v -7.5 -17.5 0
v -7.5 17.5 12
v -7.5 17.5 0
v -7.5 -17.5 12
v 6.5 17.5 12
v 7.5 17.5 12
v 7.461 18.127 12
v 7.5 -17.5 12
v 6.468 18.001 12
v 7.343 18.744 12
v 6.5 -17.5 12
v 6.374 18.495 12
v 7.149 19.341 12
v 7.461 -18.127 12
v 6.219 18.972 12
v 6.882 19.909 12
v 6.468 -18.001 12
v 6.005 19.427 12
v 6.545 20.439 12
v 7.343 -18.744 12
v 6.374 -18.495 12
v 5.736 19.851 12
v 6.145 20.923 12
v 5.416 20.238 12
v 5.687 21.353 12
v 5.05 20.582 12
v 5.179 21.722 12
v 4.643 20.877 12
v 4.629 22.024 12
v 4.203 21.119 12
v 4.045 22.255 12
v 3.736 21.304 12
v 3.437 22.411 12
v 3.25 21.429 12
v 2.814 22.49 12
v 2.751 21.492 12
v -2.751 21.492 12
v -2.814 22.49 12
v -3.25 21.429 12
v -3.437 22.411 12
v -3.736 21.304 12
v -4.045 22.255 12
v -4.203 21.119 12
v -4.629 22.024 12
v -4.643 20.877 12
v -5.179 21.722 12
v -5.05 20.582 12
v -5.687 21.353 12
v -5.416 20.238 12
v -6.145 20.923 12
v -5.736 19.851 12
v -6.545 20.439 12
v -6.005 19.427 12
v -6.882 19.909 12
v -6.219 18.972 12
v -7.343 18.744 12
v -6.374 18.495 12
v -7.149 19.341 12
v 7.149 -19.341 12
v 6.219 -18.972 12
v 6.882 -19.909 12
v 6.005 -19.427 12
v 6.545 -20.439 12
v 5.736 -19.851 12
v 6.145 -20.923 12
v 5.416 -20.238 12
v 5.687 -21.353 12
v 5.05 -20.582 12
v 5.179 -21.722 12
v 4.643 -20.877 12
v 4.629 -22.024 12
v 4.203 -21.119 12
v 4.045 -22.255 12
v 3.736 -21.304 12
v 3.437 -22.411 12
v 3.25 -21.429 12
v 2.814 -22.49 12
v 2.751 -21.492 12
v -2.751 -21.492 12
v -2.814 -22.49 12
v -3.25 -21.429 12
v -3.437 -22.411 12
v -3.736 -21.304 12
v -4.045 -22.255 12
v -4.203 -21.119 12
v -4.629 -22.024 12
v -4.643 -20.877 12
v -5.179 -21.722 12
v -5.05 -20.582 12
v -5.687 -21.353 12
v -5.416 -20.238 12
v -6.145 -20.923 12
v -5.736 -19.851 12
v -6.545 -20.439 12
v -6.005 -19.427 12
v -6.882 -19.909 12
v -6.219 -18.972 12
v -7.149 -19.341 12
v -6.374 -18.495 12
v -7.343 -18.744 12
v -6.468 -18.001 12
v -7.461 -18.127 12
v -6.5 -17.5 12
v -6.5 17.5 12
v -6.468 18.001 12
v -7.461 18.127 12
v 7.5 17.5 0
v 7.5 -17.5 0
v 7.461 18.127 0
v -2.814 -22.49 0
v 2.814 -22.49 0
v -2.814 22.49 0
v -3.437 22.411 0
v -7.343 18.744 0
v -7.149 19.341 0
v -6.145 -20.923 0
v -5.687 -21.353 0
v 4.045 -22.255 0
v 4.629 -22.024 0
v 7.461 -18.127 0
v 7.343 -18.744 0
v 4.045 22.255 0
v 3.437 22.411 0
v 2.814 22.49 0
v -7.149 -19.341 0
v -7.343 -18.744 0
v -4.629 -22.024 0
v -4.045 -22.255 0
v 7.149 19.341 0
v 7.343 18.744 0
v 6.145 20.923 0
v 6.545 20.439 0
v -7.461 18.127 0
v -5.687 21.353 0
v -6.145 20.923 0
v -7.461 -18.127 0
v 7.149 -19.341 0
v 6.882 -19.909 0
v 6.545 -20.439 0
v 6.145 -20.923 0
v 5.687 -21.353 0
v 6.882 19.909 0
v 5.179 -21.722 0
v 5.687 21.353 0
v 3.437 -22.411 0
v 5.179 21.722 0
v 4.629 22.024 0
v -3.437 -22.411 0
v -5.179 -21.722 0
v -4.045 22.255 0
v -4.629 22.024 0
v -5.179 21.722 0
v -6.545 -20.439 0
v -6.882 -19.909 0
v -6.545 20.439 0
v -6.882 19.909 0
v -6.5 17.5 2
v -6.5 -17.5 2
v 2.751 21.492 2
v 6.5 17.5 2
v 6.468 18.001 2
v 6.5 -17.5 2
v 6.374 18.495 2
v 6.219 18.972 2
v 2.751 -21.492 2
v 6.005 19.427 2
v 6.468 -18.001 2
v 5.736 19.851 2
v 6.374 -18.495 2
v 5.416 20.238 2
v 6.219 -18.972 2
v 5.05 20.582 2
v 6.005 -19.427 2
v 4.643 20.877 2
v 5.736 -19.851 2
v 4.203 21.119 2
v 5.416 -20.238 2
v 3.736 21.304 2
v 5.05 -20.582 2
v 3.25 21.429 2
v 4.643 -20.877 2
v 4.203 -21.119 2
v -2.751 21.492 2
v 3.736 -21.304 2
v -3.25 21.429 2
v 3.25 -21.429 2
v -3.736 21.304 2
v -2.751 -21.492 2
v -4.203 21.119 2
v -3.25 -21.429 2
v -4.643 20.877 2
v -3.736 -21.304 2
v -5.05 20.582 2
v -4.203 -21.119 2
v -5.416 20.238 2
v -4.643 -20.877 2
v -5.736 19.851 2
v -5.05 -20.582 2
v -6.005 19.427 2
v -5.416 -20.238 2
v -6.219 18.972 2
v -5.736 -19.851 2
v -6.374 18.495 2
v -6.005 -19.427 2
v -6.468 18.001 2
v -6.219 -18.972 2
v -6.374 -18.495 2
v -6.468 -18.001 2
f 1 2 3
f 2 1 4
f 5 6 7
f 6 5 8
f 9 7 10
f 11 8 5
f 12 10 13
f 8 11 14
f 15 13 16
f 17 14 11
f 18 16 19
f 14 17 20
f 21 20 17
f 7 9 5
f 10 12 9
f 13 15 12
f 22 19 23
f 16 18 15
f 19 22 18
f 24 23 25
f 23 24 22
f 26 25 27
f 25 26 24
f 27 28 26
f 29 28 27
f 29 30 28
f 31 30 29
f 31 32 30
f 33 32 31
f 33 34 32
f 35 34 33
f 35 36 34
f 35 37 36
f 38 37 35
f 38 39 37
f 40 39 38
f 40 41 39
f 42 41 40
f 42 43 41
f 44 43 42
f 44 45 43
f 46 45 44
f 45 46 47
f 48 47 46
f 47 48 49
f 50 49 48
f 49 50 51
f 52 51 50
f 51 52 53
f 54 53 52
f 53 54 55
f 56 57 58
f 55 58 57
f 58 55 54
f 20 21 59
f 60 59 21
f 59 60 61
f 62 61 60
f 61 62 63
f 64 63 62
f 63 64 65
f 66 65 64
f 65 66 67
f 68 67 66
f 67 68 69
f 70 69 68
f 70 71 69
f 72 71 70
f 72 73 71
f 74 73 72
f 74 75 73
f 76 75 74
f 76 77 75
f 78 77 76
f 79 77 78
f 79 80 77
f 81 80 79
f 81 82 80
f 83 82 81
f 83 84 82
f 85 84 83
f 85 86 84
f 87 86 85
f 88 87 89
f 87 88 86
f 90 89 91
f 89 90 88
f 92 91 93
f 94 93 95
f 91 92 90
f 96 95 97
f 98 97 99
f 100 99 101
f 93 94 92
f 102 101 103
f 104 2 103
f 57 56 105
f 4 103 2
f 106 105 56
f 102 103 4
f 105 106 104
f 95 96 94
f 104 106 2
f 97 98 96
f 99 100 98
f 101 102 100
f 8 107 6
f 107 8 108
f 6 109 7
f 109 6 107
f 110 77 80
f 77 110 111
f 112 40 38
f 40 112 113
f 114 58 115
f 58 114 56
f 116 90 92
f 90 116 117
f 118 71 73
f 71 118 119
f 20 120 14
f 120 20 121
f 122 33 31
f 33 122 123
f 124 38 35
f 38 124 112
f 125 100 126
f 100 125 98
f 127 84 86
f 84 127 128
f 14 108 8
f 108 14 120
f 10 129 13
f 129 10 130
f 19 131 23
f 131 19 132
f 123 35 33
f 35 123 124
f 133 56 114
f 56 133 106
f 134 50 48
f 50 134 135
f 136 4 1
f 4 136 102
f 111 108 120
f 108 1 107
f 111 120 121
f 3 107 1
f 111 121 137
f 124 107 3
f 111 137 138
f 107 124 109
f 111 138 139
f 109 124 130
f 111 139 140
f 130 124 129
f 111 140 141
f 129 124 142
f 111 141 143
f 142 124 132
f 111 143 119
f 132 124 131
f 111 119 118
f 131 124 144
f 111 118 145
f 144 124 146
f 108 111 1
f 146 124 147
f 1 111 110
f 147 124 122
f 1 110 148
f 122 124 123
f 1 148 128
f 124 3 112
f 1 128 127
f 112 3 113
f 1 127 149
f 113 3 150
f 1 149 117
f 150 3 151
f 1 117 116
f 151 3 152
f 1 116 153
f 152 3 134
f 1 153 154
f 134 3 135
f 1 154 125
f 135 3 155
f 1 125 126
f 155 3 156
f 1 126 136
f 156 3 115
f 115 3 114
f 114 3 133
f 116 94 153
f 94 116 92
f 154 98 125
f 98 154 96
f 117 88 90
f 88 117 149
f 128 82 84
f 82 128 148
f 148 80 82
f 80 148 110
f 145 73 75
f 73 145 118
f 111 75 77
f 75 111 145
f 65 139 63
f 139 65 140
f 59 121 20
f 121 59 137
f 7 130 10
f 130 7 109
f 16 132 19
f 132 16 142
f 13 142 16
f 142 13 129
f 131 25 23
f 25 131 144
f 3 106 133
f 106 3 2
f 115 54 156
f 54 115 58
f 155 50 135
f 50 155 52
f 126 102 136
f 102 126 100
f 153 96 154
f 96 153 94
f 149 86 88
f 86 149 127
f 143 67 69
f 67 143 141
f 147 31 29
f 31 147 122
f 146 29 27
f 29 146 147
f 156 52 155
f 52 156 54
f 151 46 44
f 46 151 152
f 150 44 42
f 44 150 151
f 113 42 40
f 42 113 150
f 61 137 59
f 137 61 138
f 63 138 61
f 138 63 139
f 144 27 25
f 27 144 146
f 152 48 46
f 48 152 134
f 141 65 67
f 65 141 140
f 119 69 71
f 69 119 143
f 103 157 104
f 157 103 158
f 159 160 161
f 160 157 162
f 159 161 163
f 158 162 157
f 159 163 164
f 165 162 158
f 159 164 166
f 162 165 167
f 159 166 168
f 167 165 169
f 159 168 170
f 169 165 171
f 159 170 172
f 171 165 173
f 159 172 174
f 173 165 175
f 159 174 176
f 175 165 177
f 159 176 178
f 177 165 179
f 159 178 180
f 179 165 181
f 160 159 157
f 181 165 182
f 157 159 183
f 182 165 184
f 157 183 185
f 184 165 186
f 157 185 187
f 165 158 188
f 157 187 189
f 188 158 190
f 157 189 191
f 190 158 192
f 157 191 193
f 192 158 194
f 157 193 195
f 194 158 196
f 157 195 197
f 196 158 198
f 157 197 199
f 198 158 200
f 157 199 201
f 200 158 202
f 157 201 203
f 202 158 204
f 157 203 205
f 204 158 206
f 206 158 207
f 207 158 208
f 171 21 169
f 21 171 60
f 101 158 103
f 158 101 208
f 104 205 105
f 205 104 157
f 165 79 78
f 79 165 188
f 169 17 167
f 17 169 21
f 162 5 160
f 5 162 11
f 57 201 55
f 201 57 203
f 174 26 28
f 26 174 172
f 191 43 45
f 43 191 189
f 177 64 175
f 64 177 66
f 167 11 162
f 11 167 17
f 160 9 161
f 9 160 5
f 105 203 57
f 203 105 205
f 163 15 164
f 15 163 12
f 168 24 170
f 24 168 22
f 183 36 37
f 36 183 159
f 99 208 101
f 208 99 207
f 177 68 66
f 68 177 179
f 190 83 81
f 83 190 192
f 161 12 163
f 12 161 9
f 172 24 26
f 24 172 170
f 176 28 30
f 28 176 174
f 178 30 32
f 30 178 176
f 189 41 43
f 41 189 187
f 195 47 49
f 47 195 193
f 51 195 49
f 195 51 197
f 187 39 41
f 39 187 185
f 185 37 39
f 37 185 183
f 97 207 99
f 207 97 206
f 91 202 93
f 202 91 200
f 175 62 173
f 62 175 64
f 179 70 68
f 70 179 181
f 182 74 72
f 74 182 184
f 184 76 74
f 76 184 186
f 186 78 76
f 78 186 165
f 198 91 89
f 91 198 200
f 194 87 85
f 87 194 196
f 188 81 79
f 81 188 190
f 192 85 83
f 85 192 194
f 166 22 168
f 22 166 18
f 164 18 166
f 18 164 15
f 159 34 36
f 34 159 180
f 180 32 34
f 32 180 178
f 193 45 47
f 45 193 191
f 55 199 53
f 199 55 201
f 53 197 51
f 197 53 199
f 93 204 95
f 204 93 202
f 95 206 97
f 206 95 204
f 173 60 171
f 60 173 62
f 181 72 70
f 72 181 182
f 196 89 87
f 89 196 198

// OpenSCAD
$fn = 50;


difference() {
	union() {
		hull() {
			translate(v = [-2.5000000000, 17.5000000000, 0]) {
				cylinder(h = 12, r = 5);
			}
			translate(v = [2.5000000000, 17.5000000000, 0]) {
				cylinder(h = 12, r = 5);
			}
			translate(v = [-2.5000000000, -17.5000000000, 0]) {
				cylinder(h = 12, r = 5);
			}
			translate(v = [2.5000000000, -17.5000000000, 0]) {
				cylinder(h = 12, r = 5);
			}
		}
	}
	union() {
		translate(v = [0, 0, 2]) {
			hull() {
				translate(v = [-2.5000000000, 17.5000000000, 0]) {
					cylinder(h = 10, r = 4);
				}
				translate(v = [2.5000000000, 17.5000000000, 0]) {
					cylinder(h = 10, r = 4);
				}
				translate(v = [-2.5000000000, -17.5000000000, 0]) {
					cylinder(h = 10, r = 4);
				}
				translate(v = [2.5000000000, -17.5000000000, 0]) {
					cylinder(h = 10, r = 4);
				}
			}
		}
	}
}
